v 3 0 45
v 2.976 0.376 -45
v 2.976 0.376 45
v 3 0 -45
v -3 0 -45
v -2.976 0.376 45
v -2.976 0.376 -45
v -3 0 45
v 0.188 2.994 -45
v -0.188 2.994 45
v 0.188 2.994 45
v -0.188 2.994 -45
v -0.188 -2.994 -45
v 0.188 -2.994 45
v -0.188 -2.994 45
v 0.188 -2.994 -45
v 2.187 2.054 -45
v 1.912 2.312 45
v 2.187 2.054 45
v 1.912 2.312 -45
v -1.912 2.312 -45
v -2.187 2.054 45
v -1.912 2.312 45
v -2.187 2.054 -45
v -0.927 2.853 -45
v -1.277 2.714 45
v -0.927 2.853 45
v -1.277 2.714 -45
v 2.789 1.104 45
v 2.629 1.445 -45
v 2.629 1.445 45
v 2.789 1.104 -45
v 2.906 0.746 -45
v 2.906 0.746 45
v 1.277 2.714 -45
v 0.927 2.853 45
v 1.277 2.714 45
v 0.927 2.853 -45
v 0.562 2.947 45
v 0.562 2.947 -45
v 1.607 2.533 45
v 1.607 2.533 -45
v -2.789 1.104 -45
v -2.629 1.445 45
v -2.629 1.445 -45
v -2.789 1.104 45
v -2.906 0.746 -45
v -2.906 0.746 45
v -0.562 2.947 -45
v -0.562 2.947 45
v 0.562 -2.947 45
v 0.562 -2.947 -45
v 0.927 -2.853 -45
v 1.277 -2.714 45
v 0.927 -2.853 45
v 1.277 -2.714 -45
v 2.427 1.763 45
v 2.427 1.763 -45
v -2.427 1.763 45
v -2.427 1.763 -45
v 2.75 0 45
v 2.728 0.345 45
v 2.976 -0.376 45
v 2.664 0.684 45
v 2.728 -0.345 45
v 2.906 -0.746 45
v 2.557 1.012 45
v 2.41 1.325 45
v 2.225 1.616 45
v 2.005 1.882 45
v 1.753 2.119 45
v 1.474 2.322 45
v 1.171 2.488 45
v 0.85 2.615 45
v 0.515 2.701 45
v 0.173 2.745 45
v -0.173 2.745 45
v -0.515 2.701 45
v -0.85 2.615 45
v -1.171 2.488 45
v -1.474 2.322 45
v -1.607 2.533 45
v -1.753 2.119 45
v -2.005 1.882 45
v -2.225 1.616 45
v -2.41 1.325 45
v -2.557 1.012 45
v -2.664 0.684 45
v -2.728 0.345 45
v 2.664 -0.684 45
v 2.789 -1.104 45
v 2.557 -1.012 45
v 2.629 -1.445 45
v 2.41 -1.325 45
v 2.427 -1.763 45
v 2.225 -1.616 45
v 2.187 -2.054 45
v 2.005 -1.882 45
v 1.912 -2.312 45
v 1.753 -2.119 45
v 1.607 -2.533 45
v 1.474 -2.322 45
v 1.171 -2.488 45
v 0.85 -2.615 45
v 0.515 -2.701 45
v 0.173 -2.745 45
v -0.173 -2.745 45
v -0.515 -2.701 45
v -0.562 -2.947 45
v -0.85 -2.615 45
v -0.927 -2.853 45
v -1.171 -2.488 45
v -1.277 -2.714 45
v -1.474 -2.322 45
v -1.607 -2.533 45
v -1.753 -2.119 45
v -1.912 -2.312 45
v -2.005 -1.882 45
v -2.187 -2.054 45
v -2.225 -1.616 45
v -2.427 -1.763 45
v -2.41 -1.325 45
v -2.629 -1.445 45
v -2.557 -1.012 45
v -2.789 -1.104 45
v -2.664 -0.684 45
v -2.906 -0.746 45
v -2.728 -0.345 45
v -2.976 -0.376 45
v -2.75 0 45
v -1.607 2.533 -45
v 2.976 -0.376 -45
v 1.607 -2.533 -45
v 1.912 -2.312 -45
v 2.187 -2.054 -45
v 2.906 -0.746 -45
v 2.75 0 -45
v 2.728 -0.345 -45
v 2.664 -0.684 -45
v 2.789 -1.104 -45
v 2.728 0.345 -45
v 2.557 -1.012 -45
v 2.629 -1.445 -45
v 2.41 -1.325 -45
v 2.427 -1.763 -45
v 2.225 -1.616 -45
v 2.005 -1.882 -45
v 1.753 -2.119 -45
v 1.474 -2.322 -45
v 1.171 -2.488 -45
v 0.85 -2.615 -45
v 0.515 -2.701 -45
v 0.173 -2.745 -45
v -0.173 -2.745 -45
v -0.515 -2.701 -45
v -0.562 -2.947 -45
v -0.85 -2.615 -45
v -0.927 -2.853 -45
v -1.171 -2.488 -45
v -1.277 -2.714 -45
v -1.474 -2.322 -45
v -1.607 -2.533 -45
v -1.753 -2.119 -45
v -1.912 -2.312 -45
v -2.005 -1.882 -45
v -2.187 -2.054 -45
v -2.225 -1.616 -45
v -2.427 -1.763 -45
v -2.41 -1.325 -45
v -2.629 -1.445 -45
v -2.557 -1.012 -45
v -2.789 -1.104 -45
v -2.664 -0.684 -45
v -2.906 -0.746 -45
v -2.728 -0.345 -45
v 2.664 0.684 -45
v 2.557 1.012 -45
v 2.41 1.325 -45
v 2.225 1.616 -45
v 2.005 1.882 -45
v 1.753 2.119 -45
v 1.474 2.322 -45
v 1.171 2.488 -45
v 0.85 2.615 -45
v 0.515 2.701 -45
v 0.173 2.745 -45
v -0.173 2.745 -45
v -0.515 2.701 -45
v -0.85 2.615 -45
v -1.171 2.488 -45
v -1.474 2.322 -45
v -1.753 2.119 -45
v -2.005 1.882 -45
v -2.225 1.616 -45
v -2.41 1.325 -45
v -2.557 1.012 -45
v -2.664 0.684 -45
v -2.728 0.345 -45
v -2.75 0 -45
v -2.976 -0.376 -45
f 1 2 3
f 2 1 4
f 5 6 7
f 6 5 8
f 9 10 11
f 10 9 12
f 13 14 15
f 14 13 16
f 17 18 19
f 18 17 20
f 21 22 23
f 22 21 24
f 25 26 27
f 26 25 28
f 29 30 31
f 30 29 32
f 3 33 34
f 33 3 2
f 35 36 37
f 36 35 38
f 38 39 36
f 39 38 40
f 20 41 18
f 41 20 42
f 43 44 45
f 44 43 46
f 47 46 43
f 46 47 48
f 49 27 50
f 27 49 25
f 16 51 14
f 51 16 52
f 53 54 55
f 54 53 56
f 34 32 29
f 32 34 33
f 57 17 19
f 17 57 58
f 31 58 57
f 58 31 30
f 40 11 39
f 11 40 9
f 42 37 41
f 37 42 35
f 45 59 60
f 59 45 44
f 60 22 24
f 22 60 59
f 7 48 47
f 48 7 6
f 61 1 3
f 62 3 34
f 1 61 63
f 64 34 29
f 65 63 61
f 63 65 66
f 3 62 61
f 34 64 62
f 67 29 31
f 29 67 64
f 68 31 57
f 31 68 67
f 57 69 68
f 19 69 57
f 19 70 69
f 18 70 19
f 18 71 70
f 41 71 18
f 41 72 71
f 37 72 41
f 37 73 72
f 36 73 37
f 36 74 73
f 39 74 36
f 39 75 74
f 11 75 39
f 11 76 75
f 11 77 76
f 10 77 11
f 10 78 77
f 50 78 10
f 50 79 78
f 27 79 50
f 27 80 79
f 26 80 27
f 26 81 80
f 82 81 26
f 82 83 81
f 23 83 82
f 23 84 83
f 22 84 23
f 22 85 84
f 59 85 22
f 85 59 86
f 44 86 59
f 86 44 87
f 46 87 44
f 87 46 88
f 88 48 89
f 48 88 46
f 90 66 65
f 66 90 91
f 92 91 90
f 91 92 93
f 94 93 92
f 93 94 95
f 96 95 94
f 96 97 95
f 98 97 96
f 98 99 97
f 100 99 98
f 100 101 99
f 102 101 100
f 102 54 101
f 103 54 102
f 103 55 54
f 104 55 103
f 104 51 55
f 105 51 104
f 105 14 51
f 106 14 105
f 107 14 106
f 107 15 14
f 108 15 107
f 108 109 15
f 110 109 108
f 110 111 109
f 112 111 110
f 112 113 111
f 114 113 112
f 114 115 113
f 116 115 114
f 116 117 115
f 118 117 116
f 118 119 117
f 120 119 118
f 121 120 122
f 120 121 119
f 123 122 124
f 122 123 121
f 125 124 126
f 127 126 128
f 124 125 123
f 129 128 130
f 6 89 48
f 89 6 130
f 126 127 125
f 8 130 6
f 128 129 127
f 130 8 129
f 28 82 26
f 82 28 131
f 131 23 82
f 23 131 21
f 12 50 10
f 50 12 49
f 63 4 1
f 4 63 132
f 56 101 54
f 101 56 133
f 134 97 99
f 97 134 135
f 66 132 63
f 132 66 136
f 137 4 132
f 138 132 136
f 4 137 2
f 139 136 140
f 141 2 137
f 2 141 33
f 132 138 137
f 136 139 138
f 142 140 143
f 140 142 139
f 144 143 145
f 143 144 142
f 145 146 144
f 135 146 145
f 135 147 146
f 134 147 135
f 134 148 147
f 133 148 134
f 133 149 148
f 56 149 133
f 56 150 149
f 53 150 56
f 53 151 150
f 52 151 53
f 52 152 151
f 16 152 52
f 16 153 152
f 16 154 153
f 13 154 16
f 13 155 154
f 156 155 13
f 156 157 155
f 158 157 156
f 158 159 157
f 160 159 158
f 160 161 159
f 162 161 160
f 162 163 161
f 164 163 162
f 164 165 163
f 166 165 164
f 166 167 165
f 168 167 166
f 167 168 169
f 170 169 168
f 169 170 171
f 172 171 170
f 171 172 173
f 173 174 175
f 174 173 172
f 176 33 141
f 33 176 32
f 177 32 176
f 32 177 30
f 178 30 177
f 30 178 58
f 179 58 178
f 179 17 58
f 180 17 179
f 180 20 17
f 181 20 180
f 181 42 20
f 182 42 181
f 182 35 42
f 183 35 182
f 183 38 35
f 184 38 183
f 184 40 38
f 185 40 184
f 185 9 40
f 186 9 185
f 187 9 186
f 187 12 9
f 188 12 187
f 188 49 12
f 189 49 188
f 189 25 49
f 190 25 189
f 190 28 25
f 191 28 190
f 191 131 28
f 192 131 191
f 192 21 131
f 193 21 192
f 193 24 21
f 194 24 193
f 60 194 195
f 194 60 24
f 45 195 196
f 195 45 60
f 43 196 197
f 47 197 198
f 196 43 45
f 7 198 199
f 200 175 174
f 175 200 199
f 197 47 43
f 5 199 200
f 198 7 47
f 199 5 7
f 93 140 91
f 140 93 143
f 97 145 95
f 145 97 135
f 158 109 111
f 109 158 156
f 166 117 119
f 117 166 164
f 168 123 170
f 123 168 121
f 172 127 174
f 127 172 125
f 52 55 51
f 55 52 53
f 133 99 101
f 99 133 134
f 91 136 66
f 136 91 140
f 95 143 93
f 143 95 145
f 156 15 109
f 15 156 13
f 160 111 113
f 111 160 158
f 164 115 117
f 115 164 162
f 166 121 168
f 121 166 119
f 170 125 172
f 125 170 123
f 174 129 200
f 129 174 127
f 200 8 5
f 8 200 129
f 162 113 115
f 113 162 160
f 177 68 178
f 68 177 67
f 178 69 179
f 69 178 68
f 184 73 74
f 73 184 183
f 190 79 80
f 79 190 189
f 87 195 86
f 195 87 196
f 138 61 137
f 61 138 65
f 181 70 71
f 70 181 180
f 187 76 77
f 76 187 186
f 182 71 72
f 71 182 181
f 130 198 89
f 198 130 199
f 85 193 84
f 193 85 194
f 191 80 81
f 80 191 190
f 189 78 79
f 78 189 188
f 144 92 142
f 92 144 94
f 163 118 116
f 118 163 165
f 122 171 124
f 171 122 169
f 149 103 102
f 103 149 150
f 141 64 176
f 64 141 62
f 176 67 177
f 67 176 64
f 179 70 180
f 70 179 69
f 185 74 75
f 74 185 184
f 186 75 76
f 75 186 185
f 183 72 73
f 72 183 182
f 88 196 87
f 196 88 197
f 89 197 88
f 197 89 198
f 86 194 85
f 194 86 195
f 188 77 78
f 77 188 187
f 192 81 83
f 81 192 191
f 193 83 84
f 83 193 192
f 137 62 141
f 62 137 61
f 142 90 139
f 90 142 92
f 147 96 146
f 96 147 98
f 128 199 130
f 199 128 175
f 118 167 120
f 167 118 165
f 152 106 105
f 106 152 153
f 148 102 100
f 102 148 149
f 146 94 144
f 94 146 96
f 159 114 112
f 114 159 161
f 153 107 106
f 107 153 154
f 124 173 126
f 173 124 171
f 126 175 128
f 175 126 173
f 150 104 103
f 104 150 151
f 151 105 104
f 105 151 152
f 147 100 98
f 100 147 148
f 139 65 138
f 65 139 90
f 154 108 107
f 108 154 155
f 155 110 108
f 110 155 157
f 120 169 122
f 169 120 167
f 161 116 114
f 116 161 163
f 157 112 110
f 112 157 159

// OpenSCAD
$fn = 50;


difference() {
	union() {
		translate(v = [0, 0, -45.0000000000]) {
			cylinder(h = 90, r = 3.0000000000);
		}
	}
	union() {
		translate(v = [0, 0, -100.0000000000]) {
			cylinder(h = 200, r = 2.7500000000);
		}
	}
}
